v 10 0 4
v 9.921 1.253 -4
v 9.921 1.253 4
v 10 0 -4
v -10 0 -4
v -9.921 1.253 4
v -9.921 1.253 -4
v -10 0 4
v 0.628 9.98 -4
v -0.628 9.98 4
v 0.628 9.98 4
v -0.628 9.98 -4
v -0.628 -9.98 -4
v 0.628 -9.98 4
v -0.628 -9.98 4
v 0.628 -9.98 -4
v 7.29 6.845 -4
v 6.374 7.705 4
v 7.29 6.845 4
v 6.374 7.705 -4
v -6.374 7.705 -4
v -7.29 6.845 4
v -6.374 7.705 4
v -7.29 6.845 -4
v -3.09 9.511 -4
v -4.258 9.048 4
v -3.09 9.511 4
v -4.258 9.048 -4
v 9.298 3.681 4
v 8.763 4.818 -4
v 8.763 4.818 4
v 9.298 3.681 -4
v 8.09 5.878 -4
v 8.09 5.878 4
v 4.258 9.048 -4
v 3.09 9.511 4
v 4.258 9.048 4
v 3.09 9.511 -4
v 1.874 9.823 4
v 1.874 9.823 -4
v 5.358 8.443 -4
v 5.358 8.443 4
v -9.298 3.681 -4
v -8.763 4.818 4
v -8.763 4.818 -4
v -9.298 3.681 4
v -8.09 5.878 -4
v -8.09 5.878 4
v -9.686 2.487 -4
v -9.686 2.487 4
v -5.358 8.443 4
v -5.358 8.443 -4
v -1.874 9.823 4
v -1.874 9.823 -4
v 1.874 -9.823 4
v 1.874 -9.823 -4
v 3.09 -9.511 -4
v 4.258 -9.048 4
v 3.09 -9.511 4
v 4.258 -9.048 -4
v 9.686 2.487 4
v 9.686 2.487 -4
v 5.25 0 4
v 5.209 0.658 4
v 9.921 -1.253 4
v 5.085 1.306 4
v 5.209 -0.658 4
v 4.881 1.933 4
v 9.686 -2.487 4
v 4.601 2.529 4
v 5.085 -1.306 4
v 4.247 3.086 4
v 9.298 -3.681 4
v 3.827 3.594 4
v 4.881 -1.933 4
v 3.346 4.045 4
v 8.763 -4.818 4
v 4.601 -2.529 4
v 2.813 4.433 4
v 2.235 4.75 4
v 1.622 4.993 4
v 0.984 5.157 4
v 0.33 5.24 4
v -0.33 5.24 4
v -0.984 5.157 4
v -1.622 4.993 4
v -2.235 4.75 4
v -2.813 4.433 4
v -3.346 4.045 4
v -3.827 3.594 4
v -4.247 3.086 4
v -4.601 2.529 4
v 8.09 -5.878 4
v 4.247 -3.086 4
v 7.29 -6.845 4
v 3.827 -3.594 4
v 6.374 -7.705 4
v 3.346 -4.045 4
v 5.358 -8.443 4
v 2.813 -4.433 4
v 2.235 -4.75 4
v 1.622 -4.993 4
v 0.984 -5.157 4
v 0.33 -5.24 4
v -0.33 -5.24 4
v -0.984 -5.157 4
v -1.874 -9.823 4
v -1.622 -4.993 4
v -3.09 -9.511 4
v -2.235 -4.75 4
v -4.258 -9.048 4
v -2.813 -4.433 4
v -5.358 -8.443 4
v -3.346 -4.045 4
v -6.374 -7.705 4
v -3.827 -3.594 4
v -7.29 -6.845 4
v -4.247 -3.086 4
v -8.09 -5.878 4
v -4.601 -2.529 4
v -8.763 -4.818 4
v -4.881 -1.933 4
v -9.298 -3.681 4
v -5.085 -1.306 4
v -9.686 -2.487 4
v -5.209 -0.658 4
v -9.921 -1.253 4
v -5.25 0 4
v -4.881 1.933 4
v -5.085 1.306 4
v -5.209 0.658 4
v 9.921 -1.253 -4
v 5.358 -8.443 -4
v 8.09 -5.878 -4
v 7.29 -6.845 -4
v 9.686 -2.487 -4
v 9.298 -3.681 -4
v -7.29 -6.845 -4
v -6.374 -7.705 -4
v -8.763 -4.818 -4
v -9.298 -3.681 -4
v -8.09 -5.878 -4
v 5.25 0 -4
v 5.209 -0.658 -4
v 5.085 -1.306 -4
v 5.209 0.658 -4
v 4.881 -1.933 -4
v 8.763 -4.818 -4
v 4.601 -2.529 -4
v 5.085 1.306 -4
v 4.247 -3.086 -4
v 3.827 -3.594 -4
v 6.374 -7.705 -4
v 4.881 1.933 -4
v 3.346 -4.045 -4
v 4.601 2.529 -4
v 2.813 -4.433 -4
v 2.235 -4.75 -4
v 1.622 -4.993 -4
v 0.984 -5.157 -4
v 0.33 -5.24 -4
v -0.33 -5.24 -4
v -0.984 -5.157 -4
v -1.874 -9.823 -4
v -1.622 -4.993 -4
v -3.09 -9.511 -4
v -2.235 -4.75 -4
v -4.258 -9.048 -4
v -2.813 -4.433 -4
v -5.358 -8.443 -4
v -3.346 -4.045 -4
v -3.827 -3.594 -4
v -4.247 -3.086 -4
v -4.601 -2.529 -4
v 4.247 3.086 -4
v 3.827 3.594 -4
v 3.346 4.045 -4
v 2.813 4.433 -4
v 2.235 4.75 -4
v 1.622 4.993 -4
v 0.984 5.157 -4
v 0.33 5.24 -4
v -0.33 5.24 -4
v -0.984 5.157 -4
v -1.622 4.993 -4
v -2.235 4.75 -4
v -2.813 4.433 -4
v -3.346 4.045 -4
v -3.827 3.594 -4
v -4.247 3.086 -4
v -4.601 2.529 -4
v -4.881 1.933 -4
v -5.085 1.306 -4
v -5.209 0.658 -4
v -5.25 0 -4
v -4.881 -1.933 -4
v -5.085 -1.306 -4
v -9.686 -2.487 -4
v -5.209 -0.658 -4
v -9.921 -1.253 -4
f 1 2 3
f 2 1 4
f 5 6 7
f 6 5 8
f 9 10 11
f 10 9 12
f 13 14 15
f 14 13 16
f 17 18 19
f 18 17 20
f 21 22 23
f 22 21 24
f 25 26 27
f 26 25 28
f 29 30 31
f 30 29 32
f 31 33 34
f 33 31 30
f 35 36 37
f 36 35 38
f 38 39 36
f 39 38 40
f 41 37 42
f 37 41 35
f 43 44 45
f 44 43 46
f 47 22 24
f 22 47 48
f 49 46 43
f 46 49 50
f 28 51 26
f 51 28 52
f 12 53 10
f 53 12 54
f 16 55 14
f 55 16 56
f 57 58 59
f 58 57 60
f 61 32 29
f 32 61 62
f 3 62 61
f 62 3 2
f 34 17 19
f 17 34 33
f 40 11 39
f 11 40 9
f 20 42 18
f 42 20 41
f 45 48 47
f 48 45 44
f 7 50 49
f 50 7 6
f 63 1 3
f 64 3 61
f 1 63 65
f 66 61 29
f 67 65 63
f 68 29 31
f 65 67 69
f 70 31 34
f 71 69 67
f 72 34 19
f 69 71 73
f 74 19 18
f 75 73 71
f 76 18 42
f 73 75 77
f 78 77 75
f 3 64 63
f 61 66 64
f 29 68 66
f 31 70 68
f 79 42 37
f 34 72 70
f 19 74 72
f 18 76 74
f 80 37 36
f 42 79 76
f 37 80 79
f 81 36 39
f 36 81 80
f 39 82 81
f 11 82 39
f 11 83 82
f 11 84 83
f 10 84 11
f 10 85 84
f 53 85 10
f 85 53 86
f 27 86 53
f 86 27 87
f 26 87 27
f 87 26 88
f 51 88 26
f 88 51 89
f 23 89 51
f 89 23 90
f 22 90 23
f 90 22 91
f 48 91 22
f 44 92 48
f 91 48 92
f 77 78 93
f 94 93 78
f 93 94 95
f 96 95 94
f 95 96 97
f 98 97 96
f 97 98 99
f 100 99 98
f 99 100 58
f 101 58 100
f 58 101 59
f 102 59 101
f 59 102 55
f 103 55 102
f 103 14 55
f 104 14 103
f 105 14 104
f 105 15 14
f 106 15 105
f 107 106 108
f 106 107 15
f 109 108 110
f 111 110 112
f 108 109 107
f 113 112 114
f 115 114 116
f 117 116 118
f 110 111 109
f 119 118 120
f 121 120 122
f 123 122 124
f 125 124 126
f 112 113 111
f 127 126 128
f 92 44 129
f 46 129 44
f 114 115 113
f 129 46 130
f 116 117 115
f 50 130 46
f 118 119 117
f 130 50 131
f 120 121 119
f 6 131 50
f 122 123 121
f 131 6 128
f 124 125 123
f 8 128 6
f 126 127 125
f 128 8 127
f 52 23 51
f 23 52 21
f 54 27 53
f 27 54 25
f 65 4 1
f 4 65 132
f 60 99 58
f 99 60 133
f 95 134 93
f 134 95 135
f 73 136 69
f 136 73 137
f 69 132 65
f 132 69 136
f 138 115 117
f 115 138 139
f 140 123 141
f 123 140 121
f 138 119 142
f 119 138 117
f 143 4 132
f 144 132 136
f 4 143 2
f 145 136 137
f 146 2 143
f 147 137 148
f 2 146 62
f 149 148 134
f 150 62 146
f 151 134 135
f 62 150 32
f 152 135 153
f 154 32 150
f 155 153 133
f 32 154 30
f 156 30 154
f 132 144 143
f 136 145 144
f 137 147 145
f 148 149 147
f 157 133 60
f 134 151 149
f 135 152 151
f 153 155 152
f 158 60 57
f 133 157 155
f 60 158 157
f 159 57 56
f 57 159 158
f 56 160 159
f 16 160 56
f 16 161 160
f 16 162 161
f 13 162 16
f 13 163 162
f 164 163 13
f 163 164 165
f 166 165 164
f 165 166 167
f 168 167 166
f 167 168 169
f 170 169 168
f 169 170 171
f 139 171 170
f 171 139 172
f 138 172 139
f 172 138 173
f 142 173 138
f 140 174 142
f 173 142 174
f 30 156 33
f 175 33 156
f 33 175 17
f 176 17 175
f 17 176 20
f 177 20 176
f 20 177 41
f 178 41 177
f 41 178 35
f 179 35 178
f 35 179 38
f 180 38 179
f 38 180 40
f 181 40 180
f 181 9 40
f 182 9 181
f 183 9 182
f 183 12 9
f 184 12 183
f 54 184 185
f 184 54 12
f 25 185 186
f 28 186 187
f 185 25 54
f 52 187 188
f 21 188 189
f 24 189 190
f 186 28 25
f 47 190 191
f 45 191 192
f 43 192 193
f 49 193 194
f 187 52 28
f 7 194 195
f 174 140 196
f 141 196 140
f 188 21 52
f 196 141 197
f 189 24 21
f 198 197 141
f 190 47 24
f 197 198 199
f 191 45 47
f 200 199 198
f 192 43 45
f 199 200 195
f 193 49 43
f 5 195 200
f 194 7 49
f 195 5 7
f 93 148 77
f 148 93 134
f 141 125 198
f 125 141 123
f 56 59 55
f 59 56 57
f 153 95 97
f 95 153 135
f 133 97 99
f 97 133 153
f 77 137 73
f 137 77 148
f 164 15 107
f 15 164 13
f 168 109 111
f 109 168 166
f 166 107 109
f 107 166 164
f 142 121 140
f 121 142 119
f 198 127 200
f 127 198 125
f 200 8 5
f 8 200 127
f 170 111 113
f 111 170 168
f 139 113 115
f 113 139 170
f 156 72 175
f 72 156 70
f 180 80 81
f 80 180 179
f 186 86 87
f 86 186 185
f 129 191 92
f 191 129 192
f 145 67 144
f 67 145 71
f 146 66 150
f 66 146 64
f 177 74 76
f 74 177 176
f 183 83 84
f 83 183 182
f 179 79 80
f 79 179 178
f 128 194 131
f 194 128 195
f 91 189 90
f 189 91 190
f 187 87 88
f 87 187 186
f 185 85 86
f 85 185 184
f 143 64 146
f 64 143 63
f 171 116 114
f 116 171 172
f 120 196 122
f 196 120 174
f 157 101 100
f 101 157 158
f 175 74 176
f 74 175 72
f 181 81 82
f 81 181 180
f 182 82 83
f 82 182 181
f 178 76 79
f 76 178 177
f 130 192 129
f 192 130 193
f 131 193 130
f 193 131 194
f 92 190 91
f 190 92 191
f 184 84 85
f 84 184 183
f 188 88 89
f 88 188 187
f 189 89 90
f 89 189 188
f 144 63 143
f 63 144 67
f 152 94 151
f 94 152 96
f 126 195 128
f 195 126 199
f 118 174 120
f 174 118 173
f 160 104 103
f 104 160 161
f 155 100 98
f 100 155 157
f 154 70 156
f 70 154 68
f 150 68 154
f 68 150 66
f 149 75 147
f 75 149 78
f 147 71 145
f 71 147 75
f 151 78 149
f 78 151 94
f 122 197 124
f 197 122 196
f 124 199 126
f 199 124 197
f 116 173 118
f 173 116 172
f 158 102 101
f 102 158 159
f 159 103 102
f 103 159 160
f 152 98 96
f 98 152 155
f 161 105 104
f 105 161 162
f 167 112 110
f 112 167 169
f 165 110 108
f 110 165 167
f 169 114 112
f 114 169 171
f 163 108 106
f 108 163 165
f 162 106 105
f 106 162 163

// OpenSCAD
$fn = 50;


difference() {
	union() {
		translate(v = [0, 0, -4.0000000000]) {
			cylinder(h = 8, r = 10.0000000000);
		}
	}
	union() {
		translate(v = [0, 0, -100.0000000000]) {
			cylinder(h = 200, r = 5.2500000000);
		}
	}
}
